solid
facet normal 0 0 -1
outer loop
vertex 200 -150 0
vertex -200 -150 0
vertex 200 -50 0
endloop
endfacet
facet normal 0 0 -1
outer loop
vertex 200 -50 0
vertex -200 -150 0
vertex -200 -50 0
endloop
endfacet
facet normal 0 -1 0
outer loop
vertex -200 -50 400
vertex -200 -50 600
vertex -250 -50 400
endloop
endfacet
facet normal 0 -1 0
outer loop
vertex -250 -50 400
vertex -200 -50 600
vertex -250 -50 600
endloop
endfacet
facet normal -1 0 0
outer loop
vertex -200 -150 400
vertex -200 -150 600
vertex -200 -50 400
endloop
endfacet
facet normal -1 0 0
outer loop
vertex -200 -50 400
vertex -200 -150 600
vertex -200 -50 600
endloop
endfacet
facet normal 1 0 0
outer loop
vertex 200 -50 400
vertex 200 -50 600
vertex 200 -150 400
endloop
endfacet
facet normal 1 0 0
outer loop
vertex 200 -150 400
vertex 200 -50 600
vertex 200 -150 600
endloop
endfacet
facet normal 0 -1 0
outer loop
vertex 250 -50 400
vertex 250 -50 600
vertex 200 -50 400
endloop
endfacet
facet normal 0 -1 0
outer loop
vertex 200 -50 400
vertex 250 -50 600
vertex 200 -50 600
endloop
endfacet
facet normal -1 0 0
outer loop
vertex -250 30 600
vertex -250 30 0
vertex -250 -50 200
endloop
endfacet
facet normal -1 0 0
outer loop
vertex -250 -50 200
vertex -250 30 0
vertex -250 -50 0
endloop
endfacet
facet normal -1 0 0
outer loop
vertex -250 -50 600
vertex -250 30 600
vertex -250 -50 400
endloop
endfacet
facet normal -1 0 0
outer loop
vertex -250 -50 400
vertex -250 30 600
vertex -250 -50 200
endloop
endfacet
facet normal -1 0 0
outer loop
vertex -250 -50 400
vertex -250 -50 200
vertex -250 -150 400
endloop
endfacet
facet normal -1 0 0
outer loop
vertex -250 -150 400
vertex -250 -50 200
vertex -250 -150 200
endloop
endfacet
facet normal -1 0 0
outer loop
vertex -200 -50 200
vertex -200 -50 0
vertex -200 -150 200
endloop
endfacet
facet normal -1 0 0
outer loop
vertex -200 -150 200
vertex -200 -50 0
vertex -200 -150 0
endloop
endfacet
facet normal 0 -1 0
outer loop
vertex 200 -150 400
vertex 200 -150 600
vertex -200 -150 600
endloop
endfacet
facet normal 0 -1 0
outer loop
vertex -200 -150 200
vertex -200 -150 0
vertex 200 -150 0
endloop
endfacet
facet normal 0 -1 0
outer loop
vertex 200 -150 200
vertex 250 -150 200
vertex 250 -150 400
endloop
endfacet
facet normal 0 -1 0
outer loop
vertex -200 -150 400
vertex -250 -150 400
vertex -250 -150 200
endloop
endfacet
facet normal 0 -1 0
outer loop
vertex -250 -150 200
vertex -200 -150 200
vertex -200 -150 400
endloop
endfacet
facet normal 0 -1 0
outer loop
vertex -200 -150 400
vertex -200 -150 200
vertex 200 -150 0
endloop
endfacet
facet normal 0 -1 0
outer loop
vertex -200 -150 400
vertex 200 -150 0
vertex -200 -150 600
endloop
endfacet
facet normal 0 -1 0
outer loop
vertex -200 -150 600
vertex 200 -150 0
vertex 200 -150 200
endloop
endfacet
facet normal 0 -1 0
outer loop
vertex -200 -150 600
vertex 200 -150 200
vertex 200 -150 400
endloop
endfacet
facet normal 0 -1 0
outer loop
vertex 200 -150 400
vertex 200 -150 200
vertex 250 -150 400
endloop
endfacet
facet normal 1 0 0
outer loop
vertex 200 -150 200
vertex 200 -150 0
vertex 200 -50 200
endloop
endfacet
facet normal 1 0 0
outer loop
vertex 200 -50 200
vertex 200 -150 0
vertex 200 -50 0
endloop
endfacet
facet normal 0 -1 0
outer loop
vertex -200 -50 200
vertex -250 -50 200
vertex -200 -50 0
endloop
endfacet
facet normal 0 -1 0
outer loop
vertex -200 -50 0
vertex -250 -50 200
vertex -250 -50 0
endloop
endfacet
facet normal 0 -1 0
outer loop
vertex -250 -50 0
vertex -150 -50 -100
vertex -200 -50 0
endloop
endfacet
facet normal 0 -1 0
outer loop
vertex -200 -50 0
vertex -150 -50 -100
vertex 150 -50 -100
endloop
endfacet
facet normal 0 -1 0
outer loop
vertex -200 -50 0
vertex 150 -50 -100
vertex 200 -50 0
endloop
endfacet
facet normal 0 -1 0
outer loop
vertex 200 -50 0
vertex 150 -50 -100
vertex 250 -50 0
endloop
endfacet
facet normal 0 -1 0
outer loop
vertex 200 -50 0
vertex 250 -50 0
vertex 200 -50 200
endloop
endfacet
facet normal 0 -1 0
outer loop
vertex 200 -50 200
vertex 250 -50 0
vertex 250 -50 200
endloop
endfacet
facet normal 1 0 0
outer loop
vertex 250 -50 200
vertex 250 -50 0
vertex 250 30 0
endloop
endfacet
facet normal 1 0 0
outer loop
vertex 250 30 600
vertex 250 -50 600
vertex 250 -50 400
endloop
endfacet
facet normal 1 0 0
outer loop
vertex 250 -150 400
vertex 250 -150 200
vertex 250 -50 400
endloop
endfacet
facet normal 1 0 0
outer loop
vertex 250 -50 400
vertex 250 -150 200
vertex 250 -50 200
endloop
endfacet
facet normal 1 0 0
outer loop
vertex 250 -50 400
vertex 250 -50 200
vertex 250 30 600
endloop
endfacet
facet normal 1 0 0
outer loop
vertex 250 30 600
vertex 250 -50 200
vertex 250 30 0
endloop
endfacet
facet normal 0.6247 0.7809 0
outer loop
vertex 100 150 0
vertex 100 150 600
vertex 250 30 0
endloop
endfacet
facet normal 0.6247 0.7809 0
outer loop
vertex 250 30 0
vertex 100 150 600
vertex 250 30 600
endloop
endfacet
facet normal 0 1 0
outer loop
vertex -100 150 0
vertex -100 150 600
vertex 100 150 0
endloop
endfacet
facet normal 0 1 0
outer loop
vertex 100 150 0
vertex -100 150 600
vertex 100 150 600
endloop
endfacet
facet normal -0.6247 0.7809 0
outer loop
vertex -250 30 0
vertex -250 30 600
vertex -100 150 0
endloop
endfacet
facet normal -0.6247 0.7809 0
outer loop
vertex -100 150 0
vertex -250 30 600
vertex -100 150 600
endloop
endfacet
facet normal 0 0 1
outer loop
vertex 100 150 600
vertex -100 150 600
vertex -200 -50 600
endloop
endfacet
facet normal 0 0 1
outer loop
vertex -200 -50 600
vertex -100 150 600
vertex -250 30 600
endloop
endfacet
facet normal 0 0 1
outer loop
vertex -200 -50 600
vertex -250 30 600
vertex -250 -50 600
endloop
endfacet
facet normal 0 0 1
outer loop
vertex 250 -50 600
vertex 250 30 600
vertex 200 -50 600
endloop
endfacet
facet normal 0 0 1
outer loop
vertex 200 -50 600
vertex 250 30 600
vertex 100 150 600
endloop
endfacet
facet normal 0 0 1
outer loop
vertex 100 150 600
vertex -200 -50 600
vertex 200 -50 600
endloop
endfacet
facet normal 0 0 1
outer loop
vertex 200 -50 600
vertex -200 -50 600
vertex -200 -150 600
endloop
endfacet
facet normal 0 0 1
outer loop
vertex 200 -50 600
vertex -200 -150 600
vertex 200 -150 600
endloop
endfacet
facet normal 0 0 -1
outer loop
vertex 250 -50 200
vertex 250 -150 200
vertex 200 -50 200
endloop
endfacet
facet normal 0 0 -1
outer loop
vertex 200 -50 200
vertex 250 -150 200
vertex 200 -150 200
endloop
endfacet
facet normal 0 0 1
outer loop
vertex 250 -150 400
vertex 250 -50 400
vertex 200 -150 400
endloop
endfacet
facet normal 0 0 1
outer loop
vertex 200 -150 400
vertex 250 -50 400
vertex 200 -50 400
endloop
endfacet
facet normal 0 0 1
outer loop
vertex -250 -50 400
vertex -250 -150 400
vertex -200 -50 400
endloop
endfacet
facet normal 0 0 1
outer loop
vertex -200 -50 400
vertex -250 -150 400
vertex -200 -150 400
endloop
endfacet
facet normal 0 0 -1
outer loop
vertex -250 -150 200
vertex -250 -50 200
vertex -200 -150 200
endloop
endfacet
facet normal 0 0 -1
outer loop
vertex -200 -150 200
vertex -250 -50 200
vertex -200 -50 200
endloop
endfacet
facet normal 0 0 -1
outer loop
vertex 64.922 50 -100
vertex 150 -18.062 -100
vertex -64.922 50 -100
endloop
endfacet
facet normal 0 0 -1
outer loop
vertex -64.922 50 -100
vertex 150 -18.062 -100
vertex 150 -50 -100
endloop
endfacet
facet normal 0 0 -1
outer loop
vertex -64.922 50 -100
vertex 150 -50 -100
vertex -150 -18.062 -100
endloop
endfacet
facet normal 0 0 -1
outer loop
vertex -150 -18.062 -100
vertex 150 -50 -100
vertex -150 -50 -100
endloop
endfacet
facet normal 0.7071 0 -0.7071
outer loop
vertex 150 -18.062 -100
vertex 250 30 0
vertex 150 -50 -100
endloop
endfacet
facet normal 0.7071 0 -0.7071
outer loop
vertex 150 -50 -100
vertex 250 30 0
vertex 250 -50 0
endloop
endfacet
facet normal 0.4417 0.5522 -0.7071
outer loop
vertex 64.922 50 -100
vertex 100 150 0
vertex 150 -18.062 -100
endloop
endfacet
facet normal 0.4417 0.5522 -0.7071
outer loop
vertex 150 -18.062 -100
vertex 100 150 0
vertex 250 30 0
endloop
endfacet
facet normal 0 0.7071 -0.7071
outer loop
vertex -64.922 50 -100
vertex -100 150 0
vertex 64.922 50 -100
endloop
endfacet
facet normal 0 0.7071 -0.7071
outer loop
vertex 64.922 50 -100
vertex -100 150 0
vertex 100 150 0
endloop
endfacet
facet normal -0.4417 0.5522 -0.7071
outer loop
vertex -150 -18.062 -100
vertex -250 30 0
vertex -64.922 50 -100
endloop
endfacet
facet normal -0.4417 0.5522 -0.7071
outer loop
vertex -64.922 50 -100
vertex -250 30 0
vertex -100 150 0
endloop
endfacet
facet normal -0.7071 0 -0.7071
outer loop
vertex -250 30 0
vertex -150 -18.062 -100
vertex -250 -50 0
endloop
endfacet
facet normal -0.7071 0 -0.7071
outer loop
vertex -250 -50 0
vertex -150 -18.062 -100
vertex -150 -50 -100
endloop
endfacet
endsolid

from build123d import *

# Parameters (mm, degrees)
BOSS_EXTRU_1_DEPTH = 600
ESQUISSE2_W        = 200
ESQUISSE2_H        = 100
BOSS_EXTRU_2_DEPTH = 500
BOSS_EXTRU_3_DEPTH = 100
CHANFREIN1_SIZE    = 100


with BuildPart() as part:
    # Esquisse1 → Boss.-Extru.1 (new body)
    with BuildSketch(Plane.XY):
        Polygon((-250, 30), (-100, 150), (100, 150), (250, 30), (250, -50), (200, -50), (200, -150), (-200, -150), (-200, -50), (-250, -50), align=None)
    extrude(amount=BOSS_EXTRU_1_DEPTH)

    # Esquisse2 → Boss.-Extru.2 (add)
    with BuildSketch(Plane.ZY.offset(250)):
        with Locations((300, -100)):
            Rectangle(ESQUISSE2_W, ESQUISSE2_H)
    extrude(amount=-BOSS_EXTRU_2_DEPTH)

    # Esquisse3 → Boss.-Extru.3 (add)
    with BuildSketch(Plane(origin=(0, 0, 0), x_dir=(-1, 0, 0), z_dir=(0, 0, -1))):
        Polygon((-200, -50), (200, -50), (250, -50), (250, 30), (100, 150), (-100, 150), (-250, 30), (-250, -50), align=None)
    extrude(amount=BOSS_EXTRU_3_DEPTH)

    # Chanfrein1
    chanfrein1_edges = [part.edges().sort_by_distance(p)[0] for p in [
        (-250, -10, -100),
        (-175, 90, -100),
        (0, 150, -100),
        (175, 90, -100),
        (250, -10, -100),
    ]]
    chamfer(chanfrein1_edges, length=CHANFREIN1_SIZE)


solid = part.part
